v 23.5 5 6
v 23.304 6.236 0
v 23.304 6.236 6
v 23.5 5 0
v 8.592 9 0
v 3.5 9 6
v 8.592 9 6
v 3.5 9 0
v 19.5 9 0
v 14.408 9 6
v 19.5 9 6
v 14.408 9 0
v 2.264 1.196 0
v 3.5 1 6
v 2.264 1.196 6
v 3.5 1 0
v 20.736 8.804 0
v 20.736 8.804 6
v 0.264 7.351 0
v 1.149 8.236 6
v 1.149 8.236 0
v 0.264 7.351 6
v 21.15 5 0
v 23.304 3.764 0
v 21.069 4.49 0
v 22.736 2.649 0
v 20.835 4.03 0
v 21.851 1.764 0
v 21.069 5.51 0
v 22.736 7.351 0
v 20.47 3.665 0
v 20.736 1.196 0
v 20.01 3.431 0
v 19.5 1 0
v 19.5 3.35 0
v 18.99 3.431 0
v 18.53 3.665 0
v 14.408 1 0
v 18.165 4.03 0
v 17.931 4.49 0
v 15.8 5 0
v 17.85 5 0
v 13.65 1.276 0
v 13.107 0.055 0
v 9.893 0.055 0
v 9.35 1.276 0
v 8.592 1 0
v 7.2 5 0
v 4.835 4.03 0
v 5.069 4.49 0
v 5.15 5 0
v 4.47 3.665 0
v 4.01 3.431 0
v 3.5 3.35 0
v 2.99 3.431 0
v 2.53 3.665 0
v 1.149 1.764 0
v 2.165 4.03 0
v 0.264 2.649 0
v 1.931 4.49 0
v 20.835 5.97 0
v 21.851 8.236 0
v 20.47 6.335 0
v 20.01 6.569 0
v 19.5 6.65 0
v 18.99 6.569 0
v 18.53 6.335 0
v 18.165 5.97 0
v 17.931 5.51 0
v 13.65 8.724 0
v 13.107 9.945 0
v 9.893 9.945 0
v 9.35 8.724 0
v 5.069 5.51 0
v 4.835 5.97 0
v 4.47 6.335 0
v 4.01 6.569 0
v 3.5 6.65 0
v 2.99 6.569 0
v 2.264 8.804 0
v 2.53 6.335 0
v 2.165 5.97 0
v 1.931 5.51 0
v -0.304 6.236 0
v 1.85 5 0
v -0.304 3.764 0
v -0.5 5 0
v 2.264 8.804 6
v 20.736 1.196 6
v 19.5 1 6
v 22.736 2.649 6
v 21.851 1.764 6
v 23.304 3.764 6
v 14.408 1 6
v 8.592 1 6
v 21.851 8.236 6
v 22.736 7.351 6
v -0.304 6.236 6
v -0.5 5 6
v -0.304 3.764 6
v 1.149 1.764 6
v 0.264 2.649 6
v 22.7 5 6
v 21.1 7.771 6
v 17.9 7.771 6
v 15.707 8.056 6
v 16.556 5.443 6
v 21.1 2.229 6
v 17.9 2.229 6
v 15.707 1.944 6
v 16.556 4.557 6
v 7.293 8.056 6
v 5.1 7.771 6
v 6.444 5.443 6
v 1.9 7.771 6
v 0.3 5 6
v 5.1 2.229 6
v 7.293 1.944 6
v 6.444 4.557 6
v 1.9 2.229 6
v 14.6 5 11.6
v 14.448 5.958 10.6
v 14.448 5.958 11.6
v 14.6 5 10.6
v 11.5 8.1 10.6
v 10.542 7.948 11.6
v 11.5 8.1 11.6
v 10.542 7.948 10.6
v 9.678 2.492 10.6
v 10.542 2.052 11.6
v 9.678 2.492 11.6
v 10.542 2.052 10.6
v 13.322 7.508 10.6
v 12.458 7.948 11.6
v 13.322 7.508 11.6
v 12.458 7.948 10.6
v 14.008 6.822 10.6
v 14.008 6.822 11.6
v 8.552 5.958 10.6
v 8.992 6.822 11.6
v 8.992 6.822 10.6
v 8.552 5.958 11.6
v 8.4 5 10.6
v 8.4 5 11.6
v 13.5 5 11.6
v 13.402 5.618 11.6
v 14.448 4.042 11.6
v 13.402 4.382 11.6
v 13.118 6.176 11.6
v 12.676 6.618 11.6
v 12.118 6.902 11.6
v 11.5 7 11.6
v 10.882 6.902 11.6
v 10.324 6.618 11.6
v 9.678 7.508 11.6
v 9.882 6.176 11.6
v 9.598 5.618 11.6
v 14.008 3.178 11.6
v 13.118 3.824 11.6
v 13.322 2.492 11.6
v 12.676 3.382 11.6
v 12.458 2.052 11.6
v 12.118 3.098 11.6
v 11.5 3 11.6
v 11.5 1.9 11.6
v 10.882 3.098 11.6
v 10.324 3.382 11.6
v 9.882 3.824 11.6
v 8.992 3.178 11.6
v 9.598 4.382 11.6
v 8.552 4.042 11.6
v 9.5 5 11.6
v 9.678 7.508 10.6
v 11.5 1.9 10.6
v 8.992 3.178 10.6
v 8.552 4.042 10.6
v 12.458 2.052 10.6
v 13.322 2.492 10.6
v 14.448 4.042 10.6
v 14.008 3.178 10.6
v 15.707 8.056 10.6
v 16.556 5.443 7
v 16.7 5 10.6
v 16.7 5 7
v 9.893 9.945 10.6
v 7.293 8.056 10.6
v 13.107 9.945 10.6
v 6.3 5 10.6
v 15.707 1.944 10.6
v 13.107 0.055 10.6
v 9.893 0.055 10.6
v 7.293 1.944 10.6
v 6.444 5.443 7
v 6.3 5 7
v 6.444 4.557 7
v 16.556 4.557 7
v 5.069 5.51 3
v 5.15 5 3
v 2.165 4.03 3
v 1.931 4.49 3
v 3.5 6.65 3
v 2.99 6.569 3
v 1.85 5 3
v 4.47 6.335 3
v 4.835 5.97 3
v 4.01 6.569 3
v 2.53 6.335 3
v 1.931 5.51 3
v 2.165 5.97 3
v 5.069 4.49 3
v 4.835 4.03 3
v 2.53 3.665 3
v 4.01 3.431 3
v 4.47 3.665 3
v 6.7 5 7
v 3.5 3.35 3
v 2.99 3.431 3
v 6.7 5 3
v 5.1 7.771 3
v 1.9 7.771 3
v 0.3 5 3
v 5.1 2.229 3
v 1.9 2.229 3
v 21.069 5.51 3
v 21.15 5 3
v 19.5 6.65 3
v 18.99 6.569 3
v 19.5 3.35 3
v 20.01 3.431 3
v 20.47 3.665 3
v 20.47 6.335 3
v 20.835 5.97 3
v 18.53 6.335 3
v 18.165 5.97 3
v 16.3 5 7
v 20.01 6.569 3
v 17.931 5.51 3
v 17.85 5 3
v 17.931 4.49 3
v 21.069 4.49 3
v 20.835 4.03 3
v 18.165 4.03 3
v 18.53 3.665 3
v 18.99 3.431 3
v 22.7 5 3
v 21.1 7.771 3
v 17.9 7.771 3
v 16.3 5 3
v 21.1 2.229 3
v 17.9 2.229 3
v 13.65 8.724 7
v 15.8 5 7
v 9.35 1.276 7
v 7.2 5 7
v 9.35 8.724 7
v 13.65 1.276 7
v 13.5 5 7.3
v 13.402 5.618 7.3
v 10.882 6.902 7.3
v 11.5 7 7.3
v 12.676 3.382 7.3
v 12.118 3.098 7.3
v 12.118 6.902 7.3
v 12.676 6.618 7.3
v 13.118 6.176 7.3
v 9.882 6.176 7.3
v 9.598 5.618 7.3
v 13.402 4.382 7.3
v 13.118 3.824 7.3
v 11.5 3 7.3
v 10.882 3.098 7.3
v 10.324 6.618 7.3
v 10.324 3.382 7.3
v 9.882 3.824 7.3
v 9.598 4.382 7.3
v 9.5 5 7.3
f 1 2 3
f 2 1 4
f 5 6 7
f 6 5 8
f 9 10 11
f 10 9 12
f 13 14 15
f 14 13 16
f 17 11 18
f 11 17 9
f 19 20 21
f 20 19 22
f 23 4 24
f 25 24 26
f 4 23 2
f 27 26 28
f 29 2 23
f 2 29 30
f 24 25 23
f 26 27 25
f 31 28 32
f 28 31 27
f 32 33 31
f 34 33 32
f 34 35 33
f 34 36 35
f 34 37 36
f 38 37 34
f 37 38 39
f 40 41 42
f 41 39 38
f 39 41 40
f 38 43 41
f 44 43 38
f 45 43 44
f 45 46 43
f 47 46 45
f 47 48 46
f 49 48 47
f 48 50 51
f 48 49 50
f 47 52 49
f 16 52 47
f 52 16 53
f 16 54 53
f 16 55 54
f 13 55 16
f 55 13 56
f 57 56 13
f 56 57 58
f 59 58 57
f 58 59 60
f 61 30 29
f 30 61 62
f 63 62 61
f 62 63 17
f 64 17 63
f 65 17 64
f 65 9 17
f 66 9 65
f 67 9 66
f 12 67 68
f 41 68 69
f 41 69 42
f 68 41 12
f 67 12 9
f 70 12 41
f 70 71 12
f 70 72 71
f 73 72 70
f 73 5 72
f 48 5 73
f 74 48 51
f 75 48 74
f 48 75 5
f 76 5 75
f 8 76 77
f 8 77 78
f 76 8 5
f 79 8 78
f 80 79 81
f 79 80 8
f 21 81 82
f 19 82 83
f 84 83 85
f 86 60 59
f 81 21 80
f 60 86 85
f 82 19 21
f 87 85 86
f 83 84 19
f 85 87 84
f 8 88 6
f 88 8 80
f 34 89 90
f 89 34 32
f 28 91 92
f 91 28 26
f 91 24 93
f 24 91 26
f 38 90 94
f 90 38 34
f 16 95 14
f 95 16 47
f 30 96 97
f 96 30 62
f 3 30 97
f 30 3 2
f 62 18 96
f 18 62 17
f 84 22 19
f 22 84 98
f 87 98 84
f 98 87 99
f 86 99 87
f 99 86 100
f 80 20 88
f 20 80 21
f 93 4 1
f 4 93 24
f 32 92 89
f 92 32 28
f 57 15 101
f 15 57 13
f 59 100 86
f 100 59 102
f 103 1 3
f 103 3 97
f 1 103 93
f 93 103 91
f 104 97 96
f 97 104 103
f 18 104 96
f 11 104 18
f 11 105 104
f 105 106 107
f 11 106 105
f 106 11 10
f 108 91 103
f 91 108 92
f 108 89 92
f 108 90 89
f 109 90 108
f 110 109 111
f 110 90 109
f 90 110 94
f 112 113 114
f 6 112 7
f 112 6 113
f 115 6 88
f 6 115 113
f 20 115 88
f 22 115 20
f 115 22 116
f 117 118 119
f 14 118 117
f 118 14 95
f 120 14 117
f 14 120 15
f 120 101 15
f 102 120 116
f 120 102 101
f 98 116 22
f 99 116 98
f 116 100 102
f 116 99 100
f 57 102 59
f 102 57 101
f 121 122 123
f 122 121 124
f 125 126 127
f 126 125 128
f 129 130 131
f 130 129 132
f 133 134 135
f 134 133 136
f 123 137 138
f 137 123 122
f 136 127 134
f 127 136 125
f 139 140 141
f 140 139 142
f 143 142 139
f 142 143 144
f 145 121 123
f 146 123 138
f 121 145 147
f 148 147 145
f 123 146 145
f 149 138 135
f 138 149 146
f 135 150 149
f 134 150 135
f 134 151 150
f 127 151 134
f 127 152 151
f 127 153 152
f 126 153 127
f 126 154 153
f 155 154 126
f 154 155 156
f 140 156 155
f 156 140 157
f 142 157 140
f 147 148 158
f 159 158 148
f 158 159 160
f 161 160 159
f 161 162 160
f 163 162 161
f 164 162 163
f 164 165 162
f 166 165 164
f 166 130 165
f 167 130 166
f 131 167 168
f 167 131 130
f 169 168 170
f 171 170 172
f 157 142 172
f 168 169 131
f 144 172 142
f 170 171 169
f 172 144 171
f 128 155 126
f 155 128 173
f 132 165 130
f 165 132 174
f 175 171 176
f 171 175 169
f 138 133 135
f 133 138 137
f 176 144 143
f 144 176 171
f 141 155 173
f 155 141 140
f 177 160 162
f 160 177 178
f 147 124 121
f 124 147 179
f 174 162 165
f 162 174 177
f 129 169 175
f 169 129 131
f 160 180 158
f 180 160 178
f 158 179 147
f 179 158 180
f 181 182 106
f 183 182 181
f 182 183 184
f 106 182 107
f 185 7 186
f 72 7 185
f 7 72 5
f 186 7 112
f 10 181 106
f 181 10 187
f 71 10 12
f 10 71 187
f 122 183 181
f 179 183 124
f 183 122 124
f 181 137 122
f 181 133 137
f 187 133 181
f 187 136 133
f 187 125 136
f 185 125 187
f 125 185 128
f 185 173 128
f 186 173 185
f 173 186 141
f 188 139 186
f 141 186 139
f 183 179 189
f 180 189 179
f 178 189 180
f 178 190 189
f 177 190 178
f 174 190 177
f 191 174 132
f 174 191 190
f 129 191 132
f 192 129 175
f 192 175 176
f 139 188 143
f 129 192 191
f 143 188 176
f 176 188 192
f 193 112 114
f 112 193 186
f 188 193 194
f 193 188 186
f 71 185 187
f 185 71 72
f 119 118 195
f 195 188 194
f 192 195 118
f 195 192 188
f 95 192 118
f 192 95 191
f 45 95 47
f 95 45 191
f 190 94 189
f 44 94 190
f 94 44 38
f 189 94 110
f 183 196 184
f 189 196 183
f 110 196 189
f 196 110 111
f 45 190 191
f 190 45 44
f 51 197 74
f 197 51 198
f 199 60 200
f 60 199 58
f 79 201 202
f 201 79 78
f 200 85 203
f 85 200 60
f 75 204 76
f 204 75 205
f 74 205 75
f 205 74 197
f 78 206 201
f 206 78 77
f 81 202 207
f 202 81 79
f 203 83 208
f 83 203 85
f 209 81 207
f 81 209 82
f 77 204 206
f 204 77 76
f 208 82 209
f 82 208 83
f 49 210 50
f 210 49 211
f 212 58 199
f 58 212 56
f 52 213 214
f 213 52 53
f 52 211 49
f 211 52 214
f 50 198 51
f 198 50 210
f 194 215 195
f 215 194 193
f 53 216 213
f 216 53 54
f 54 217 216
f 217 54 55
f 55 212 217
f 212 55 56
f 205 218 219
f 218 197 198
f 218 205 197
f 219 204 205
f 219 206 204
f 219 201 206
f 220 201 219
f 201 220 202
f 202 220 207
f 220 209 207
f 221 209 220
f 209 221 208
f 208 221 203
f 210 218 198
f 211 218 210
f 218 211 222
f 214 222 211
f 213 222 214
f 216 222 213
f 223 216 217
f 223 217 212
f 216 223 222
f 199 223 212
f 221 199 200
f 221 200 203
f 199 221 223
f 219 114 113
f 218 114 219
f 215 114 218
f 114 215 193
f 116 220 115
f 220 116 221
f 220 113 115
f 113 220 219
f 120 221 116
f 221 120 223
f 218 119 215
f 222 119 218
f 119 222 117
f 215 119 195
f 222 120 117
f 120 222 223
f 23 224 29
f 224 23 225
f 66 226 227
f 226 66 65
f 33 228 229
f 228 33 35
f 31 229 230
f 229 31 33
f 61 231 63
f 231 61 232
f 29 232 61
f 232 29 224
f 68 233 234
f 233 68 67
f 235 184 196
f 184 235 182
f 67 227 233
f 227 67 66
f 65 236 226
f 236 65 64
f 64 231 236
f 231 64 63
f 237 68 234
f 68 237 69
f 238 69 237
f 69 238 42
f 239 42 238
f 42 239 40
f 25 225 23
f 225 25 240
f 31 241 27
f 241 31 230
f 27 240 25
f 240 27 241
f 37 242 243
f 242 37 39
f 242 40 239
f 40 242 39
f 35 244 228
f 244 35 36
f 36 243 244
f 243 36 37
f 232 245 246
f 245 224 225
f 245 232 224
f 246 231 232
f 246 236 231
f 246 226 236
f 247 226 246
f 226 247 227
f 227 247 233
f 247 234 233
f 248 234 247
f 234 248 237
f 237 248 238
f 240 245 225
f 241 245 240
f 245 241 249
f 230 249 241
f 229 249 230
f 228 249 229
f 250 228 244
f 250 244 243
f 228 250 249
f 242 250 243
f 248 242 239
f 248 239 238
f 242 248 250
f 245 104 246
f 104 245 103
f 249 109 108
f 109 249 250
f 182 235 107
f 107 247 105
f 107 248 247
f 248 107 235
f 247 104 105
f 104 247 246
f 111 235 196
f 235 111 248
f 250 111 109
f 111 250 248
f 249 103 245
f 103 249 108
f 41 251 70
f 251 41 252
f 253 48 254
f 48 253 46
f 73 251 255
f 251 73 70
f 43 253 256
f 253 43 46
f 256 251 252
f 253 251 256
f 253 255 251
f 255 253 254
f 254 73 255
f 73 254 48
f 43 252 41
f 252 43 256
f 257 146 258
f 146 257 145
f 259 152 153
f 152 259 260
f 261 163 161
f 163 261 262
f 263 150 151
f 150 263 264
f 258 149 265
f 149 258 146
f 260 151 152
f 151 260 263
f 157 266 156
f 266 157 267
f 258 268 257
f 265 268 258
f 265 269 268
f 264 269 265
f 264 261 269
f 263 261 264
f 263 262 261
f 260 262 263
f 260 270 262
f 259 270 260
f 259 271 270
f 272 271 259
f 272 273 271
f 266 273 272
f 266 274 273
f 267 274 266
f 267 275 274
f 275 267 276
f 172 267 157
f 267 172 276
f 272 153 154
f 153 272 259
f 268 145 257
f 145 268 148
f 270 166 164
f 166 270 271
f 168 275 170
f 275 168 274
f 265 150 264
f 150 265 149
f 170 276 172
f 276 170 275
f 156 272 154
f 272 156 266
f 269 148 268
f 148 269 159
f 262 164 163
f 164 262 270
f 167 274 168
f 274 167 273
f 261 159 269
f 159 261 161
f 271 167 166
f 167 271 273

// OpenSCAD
/**
 * separador.scad
 * 
 * Created by Diego Viejo
 * 24/Nov/2015
 * 
 */

*for(i=[0:1]) translate([i*20, 0, 0])
    spacer();
*for(i=[0:1]) translate([i*20, 20, 0])
    spacer(id=3);

spacer2();    

module spacer(od=16, id=4, height=11.6)
{
    difference()
    {
        cylinder(d=od, h=height);
        translate([0, 0, -1]) cylinder(d=id*1.15, h=height+2, $fn=25);
    }
}

length = 23;

module spacer2()
difference()
{
    union()
    {
        //cube([length,10, 6]);
        hull()
        {
            for(i=[-1,1])
            {
                translate([length/2+i*8, 5, 0]) cylinder(d=8, h=6, $fn=20);                
            }
        }
        translate([length/2, 5, 0]) cylinder(d=6.2, h=11.6, $fn=20);
        translate([length/2, 5, 0]) cylinder(d=10.4, h=10.6, $fn=10);
    }
    
    for(i=[-1,1])
    {
        translate([length/2+i*8, 5, -1]) cylinder(d=3.3, h=6+2, $fn=20);
        translate([length/2+i*8, 5, 6-3]) cylinder(d=6.4, h=4, $fn=6);
    }
        
    translate([length/2, 5, -1]) cylinder(d=8.6, h=8, $fn=6);
    translate([length/2, 5, 7+0.3]) cylinder(d=4, h=10, $fn=20);
}
